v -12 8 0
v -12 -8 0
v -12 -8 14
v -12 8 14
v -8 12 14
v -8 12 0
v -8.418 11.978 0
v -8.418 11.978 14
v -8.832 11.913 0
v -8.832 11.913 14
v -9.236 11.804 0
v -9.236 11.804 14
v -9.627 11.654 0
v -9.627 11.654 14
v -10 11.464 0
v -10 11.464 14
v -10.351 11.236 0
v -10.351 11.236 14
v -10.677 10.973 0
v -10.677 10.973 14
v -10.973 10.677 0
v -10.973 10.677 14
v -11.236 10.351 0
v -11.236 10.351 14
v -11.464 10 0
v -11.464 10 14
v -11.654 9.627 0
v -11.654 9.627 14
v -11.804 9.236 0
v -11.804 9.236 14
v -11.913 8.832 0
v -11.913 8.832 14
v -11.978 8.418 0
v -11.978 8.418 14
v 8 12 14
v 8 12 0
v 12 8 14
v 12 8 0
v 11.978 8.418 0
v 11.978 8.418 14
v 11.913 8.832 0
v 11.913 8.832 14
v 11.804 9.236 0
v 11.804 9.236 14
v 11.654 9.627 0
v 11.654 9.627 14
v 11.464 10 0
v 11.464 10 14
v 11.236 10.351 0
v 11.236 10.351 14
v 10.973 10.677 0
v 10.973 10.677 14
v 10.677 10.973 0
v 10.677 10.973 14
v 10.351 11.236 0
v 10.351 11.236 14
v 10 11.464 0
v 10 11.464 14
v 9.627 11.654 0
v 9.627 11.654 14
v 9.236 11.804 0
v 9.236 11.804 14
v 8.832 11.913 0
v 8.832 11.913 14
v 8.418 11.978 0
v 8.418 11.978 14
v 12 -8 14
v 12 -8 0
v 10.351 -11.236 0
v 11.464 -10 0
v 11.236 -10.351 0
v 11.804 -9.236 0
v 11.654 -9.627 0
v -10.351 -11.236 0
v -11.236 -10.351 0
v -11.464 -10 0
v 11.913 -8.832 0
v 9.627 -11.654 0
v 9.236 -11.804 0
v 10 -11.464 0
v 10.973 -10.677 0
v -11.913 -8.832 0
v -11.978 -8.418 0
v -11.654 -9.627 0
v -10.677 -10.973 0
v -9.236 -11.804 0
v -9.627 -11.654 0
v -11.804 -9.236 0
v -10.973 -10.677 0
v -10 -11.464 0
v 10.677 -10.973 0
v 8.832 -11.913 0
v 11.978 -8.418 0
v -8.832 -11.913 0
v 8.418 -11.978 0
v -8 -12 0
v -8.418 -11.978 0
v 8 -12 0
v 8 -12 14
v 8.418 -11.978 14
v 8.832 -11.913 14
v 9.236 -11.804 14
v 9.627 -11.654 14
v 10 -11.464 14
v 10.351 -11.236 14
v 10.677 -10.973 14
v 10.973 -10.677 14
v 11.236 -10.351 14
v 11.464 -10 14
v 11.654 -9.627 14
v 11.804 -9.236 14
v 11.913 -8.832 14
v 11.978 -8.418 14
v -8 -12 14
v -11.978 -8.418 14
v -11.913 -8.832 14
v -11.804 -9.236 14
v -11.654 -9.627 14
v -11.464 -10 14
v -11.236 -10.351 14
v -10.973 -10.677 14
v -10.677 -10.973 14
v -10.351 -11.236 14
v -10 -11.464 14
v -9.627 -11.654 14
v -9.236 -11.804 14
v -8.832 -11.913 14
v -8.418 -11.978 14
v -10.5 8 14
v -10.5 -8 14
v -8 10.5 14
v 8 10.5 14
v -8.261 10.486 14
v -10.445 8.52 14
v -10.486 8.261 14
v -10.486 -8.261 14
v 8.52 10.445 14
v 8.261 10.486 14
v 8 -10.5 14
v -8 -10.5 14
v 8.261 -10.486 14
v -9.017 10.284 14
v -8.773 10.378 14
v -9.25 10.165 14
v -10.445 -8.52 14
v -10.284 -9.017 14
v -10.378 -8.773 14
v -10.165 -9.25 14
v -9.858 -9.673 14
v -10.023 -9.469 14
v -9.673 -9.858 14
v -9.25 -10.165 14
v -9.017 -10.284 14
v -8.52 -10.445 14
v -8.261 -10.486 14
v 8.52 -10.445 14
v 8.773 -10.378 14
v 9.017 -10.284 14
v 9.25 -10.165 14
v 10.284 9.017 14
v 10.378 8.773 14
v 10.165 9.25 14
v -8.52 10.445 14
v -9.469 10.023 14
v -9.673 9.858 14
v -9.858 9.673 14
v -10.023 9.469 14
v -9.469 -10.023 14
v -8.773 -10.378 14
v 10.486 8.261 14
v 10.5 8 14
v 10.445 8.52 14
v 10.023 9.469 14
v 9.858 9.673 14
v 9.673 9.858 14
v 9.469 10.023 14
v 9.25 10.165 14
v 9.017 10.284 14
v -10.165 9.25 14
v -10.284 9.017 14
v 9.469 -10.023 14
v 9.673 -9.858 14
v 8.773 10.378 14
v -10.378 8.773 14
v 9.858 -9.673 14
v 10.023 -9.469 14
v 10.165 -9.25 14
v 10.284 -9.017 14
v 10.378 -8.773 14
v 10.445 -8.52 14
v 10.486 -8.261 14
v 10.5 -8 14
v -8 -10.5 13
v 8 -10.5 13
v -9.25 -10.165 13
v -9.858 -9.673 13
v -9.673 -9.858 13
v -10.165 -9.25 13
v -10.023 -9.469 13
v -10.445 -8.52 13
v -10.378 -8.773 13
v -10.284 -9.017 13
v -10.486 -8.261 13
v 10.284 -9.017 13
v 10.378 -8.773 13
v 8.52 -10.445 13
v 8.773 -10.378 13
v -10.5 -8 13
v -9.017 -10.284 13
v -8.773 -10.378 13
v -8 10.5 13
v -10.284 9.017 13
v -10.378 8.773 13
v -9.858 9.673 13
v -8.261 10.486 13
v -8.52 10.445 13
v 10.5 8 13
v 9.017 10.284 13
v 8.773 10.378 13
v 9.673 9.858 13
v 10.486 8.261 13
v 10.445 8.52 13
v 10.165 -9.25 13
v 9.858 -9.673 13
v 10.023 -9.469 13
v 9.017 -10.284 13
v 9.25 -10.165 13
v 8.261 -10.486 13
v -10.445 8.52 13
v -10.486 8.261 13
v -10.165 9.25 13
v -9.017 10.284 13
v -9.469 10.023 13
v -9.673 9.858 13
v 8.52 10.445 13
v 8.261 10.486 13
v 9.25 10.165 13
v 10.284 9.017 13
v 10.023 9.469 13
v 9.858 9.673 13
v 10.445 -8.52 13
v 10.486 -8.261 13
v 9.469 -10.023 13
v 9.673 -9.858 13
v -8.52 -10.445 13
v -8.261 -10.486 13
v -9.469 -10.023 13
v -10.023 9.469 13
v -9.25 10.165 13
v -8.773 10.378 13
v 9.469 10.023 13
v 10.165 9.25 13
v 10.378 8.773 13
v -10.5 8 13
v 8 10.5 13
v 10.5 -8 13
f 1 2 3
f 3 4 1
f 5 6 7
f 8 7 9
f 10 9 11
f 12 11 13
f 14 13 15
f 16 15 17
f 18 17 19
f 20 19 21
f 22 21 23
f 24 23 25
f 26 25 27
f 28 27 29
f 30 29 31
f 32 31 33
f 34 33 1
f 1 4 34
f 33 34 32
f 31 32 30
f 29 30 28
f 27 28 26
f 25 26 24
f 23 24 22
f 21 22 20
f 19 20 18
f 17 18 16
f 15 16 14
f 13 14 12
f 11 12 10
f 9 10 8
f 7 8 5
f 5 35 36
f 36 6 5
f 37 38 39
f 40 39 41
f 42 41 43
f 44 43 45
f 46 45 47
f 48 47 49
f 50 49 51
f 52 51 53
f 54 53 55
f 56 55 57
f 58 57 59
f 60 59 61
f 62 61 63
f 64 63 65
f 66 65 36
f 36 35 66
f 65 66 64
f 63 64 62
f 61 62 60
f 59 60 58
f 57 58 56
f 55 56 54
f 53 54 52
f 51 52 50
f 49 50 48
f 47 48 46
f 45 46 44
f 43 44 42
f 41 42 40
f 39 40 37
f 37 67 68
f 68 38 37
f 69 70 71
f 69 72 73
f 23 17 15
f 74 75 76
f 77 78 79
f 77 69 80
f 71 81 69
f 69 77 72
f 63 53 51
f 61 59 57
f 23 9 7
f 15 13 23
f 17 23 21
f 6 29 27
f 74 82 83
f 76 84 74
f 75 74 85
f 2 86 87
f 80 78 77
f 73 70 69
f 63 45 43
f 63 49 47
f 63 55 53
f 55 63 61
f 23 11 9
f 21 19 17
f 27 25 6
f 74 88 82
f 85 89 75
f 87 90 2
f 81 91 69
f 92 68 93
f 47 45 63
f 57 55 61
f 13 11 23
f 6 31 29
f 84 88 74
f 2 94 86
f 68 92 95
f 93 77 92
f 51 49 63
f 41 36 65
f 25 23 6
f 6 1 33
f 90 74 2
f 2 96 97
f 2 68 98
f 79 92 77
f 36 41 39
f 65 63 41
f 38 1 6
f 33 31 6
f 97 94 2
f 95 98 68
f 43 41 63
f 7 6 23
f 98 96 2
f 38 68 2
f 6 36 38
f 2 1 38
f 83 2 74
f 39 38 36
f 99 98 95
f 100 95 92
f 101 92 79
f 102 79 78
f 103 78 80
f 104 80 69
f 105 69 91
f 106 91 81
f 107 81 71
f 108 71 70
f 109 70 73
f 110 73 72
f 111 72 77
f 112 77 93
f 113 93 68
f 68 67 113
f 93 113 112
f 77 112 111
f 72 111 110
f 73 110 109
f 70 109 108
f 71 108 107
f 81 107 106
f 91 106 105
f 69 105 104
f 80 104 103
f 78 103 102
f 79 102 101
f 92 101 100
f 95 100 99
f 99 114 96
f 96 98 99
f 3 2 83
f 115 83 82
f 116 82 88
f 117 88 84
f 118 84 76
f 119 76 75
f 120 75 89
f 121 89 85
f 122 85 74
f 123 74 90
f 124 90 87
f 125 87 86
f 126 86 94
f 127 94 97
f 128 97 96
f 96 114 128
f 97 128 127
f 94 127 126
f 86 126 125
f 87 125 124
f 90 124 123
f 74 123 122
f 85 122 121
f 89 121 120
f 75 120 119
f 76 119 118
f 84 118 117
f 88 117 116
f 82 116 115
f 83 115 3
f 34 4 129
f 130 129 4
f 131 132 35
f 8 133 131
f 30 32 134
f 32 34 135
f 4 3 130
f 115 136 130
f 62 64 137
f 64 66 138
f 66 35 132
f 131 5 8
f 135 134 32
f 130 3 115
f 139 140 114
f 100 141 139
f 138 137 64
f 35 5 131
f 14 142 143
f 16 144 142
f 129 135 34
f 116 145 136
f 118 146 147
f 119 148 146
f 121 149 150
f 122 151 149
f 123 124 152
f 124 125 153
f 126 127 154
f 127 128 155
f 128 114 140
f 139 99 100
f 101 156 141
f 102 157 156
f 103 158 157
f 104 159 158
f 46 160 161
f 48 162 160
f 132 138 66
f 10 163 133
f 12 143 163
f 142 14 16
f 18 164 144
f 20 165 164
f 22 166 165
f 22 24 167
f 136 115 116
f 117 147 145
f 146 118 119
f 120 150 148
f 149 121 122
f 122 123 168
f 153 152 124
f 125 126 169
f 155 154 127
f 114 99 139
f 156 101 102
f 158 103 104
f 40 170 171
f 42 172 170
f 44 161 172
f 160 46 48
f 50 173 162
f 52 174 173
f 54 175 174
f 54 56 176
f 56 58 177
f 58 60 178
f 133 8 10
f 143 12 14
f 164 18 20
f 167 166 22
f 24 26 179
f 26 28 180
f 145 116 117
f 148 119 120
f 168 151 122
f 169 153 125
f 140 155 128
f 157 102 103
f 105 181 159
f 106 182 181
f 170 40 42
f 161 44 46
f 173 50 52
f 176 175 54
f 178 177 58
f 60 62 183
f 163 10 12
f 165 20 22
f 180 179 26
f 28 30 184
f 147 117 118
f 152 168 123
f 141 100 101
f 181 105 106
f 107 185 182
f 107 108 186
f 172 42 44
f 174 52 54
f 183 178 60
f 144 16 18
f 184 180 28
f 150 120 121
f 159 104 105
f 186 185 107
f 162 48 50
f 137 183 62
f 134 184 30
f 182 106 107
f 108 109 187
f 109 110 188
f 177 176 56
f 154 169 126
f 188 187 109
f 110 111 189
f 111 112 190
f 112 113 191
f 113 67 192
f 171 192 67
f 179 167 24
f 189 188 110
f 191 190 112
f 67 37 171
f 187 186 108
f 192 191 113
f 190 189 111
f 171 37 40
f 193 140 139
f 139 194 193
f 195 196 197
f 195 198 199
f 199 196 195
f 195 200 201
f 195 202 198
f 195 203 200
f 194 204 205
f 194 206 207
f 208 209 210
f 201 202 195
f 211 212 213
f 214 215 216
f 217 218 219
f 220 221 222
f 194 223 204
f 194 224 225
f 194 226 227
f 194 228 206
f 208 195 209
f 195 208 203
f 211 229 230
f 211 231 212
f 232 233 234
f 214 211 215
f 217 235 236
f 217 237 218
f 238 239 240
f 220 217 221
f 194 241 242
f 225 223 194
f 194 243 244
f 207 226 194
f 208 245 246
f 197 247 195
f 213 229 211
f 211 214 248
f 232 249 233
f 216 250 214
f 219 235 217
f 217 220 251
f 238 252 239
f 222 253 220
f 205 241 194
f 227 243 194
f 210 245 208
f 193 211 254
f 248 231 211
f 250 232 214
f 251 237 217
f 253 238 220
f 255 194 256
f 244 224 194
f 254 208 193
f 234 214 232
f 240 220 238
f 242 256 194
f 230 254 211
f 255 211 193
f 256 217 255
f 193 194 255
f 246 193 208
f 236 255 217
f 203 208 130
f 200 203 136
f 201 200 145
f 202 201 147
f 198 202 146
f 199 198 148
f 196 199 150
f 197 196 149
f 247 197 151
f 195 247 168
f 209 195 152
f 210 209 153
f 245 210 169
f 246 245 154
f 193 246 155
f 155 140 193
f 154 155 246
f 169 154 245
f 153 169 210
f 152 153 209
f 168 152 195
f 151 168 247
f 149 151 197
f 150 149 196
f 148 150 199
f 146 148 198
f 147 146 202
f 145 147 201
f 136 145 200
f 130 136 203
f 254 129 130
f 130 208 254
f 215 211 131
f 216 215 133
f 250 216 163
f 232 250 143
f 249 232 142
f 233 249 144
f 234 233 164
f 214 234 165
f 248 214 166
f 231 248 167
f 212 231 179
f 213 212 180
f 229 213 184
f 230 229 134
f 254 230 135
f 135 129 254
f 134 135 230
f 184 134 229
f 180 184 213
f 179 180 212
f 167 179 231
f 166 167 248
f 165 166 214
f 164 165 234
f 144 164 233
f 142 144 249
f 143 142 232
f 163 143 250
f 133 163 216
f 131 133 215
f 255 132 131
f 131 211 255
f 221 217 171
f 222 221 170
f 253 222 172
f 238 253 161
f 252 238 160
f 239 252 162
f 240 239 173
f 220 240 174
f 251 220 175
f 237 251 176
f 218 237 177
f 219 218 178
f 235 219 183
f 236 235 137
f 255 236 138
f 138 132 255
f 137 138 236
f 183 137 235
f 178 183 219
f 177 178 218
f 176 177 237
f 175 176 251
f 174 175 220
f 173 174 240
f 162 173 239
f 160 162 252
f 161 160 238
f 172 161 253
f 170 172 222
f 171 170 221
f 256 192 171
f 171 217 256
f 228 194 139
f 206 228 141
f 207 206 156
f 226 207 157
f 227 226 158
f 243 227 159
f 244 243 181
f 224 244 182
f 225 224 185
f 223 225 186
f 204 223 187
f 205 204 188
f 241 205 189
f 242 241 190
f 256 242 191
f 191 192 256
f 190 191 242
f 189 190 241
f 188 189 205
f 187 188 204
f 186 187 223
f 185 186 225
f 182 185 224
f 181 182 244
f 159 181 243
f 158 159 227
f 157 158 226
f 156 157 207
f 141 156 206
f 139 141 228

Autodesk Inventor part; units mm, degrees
ref_plane "YZ Plane" through (0, 0, 0) normal (1, 0, 0) x (0, 1, 0)
ref_plane "XZ Plane" through (0, 0, 0) normal (0, 1, 0) x (-1, 0, 0)
ref_plane "XY Plane" through (0, 0, 0) normal (0, 0, 1) x (1, 0, 0)
sketch "スケッチ1" plane through (0, 0, 0) normal (0, 0, 1) x (1, 0, 0)
  line L0 (-12, 12) -> (12, 12)
  line L1 (12, 12) -> (12, -12)
  line L2 (12, -12) -> (-12, -12)
  line L3 (-12, -12) -> (-12, 12)
  line L4 (-12, 12) -> (12, -12) construction
  line L5 (12, 12) -> (-12, -12) construction
  point P0 (0, 0)
  dimension "d0" = 24
  dimension "d1" = 24
extrude "押し出し1" add sketch "スケッチ1" along normal blind 14
fillet "フィレット1" radius 4 4 edges at (-12, 12, 7) (12, 12, 7) (12, -12, 7) (-12, -12, 7)
sketch "スケッチ2" plane through (0, 0, 14) normal (0, 0, 1) x (1, 0, 0)
  arc A0 (-12, -8) -> (-8, -12) centre (-8, -8) ccw projected
  line L0 (-8, -12) -> (8, -12) projected
  arc A1 (8, -12) -> (12, -8) centre (8, -8) ccw projected
  line L1 (12, -8) -> (12, 8) projected
  arc A2 (12, 8) -> (8, 12) centre (8, 8) ccw projected
  line L2 (8, 12) -> (-8, 12) projected
  arc A3 (-8, 12) -> (-12, 8) centre (-8, 8) ccw projected
  line L3 (-12, 8) -> (-12, -8) projected
  line L4 (-8, 10.5) -> (8, 10.5)
  arc A4 (10.5, 8) -> (8, 10.5) centre (8, 8) ccw
  line L5 (10.5, 8) -> (10.5, -8)
  arc A5 (8, -10.5) -> (10.5, -8) centre (8, -8) ccw
  line L6 (8, -10.5) -> (-8, -10.5)
  arc A6 (-10.5, -8) -> (-8, -10.5) centre (-8, -8) ccw
  line L7 (-10.5, -8) -> (-10.5, 8)
  arc A7 (-8, 10.5) -> (-10.5, 8) centre (-8, 8) ccw
  point P0 (0, 0)
  dimension "d5" = 1.5
extrude "押し出し2" cut sketch "スケッチ2" against normal blind 1 contours L4 A4 L5 A5 L6 A6 L7 A7
properties part number "M5Atom"
